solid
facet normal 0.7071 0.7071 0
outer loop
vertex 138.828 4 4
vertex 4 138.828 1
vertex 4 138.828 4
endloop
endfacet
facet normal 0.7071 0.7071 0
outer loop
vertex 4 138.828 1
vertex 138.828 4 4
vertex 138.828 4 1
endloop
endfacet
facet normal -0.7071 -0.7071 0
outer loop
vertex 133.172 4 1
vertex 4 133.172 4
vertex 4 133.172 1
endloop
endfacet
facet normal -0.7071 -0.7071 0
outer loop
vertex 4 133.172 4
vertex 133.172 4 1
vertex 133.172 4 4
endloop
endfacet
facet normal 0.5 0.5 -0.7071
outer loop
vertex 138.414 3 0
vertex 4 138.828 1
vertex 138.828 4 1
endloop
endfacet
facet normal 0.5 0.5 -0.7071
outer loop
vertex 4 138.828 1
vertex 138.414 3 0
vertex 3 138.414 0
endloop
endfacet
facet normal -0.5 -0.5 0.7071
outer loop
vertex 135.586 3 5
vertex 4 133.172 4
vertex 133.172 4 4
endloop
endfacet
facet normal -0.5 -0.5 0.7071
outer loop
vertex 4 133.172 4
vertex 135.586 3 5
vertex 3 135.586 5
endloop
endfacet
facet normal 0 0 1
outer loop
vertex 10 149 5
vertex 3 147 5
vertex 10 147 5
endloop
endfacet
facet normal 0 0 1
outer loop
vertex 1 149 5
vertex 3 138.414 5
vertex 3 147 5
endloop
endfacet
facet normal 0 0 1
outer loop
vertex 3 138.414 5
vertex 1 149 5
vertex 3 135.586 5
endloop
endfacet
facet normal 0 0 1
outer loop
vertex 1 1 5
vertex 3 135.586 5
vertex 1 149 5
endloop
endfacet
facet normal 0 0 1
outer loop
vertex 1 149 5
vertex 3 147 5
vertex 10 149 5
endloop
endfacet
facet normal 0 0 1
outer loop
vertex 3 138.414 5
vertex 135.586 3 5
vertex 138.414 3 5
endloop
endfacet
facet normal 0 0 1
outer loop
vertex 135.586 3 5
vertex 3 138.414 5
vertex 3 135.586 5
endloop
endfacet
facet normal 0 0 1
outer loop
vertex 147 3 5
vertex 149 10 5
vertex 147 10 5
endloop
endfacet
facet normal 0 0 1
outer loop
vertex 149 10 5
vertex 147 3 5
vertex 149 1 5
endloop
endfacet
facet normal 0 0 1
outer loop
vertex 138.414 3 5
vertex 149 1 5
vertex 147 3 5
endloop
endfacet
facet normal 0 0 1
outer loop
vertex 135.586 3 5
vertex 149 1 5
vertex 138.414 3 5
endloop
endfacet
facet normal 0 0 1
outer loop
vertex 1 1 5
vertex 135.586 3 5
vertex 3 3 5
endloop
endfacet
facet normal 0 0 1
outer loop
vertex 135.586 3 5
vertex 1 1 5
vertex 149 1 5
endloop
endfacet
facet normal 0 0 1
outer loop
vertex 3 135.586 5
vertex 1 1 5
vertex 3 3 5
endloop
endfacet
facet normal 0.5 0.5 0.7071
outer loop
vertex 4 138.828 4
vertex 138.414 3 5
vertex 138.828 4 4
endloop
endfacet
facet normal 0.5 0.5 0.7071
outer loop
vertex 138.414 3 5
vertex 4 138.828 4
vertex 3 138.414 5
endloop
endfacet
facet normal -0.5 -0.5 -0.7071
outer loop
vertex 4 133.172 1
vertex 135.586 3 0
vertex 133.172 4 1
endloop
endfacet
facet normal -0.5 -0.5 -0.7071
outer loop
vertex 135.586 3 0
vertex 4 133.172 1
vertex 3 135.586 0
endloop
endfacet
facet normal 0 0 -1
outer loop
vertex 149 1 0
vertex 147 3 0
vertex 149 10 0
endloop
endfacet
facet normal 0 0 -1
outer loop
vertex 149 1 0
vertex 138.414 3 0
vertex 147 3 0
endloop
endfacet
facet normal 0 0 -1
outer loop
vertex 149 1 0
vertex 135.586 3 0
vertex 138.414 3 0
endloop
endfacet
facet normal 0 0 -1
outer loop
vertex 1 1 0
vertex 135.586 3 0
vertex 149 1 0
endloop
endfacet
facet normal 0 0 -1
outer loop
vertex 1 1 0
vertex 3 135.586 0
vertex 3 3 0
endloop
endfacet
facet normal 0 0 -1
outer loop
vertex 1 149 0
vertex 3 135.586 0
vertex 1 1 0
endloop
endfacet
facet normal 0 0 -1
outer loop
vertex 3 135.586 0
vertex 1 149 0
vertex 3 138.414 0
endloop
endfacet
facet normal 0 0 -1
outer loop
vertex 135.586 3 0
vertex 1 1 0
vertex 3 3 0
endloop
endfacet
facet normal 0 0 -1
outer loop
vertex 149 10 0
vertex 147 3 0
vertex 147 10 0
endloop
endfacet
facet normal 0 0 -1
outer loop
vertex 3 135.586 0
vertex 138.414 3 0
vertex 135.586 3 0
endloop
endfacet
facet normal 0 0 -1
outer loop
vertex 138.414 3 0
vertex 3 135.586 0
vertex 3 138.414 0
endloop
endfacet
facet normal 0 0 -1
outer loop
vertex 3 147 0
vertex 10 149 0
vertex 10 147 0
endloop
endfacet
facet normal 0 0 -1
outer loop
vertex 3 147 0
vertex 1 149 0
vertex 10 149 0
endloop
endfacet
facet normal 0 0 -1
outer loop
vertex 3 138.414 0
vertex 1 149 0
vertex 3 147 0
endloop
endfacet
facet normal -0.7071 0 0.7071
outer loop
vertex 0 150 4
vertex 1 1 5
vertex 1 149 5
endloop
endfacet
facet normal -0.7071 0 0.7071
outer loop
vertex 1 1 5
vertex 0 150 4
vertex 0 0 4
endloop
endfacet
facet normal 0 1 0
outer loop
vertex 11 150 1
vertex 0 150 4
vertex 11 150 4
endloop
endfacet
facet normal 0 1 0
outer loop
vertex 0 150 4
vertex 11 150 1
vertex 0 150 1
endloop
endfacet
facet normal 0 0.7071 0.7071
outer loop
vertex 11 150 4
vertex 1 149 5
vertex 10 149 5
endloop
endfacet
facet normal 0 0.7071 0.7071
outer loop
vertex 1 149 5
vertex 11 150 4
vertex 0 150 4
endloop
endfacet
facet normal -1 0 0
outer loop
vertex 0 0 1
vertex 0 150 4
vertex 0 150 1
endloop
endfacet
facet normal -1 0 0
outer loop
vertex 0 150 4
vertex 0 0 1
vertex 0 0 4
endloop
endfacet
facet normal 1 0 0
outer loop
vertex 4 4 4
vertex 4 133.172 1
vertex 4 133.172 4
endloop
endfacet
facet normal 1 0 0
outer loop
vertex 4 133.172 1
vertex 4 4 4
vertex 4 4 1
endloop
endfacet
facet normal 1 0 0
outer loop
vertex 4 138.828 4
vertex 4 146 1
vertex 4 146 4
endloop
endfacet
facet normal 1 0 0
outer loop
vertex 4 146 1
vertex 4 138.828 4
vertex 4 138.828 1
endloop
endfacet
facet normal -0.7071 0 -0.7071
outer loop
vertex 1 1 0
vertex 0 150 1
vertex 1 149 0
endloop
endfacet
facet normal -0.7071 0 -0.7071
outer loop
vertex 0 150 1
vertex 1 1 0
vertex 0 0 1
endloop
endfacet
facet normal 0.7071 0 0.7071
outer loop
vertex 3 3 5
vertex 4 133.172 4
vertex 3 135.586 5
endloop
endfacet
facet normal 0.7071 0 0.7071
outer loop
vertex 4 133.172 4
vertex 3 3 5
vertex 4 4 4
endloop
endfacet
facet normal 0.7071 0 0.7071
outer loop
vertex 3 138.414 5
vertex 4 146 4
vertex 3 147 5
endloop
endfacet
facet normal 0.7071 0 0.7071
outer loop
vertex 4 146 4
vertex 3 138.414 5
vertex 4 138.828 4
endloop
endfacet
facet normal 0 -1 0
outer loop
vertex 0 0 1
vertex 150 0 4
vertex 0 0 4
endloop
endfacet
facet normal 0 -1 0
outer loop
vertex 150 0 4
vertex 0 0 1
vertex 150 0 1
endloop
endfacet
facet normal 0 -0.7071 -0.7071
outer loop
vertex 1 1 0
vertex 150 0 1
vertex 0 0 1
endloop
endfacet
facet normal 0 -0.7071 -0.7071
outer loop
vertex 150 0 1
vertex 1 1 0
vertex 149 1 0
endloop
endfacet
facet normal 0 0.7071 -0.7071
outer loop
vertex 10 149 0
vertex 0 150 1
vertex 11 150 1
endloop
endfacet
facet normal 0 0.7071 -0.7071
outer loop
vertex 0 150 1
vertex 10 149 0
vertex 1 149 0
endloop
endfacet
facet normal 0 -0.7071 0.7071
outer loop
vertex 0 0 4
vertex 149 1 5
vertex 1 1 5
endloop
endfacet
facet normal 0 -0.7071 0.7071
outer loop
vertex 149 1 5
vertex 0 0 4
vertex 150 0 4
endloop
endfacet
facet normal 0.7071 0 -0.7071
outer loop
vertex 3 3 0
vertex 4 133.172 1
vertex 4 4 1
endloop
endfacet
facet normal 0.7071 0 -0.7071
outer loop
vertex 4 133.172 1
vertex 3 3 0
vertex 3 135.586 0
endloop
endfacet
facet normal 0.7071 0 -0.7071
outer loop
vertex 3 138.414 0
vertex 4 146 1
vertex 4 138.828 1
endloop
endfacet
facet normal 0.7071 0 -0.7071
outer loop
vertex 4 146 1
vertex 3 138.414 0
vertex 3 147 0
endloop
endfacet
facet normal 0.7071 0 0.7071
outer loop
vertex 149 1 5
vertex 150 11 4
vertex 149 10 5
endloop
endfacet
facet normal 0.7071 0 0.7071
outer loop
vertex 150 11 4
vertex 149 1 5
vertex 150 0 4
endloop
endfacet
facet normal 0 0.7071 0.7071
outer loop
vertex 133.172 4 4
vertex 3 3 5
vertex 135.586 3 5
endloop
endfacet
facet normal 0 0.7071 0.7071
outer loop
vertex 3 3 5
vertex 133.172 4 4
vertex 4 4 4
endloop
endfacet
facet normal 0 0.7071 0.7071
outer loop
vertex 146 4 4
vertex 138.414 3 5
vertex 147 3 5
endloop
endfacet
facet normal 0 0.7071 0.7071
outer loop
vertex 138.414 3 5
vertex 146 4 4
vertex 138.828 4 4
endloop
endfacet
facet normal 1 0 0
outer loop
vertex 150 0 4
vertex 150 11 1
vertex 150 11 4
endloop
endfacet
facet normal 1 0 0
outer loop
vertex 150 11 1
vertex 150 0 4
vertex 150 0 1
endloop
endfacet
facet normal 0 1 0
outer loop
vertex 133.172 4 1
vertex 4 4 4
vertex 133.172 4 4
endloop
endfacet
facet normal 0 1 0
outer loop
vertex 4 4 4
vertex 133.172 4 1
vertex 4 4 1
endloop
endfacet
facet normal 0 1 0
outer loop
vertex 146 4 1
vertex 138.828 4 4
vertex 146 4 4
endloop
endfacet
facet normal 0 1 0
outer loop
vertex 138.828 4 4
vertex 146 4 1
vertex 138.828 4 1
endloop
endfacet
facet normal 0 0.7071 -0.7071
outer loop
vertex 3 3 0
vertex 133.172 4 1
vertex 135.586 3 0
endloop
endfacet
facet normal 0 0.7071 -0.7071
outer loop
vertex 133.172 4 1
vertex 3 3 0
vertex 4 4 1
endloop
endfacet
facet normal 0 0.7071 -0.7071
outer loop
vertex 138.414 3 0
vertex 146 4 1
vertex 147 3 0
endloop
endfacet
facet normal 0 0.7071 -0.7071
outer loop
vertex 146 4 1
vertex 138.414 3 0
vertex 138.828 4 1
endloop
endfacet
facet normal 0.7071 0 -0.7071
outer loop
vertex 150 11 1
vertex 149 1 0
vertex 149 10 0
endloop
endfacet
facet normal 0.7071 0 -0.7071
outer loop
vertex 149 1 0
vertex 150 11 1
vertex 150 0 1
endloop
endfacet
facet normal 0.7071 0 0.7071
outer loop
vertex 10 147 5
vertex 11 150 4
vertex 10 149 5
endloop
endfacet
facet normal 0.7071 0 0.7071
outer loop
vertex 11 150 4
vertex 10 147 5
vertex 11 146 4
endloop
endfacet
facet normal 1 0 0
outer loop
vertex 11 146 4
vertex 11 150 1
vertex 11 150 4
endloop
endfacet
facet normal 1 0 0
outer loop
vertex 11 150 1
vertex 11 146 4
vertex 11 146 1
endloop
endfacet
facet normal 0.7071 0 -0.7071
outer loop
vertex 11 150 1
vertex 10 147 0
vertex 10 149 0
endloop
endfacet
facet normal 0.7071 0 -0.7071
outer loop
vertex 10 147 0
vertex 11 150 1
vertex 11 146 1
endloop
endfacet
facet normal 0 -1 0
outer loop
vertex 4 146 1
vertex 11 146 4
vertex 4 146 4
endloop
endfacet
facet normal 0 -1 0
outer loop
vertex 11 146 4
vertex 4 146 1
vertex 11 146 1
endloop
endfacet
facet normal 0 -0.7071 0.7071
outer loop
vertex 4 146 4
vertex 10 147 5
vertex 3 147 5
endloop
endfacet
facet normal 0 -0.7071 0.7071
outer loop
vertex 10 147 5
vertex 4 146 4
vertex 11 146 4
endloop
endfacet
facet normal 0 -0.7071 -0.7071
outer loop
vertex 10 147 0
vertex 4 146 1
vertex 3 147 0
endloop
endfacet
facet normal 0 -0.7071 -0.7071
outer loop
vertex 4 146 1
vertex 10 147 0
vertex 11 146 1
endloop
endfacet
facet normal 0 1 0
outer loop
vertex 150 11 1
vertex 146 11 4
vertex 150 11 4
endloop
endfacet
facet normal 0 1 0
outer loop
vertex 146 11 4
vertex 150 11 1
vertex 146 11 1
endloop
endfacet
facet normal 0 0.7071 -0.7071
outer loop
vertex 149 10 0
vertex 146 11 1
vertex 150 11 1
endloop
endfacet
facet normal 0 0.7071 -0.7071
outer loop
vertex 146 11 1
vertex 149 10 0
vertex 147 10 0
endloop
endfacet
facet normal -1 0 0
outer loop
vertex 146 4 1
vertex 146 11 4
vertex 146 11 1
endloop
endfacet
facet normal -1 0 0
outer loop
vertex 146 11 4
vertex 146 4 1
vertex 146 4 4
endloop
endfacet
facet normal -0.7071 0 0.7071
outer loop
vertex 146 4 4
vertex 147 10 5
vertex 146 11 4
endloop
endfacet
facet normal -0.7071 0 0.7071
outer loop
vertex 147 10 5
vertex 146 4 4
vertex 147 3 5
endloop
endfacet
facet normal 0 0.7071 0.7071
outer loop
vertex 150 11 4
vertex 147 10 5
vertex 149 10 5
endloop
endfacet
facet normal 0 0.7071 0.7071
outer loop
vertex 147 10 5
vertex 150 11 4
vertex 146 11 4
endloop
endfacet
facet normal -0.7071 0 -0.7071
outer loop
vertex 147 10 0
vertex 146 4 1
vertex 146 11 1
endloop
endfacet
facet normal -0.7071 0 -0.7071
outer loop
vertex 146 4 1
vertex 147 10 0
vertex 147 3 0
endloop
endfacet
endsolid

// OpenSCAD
module _beam(length) {
    hull() {
        cube([length, 4, 3], center=true);

        cube([length - 2, 2, 5], center=true);
    }
}

union() {
    translate([4/2, 150/2, 5/2])
    rotate([0, 0, 90])
    _beam(150);

    translate([150/2, 4/2, 5/2])
    _beam(150);

    translate([10/2 + 1, 150 - 4/2, 5/2])
    _beam(10);

    translate([150 - 4/2, 10/2 + 1, 5/2])
    rotate([0, 0, 90])
    _beam(10);

    intersection() {
        translate([70, 70, 5/2])
        rotate([0, 0, -45])
        _beam(200);

        translate([1, 1, 0])
        cube([200, 200, 10]);
    }
}
